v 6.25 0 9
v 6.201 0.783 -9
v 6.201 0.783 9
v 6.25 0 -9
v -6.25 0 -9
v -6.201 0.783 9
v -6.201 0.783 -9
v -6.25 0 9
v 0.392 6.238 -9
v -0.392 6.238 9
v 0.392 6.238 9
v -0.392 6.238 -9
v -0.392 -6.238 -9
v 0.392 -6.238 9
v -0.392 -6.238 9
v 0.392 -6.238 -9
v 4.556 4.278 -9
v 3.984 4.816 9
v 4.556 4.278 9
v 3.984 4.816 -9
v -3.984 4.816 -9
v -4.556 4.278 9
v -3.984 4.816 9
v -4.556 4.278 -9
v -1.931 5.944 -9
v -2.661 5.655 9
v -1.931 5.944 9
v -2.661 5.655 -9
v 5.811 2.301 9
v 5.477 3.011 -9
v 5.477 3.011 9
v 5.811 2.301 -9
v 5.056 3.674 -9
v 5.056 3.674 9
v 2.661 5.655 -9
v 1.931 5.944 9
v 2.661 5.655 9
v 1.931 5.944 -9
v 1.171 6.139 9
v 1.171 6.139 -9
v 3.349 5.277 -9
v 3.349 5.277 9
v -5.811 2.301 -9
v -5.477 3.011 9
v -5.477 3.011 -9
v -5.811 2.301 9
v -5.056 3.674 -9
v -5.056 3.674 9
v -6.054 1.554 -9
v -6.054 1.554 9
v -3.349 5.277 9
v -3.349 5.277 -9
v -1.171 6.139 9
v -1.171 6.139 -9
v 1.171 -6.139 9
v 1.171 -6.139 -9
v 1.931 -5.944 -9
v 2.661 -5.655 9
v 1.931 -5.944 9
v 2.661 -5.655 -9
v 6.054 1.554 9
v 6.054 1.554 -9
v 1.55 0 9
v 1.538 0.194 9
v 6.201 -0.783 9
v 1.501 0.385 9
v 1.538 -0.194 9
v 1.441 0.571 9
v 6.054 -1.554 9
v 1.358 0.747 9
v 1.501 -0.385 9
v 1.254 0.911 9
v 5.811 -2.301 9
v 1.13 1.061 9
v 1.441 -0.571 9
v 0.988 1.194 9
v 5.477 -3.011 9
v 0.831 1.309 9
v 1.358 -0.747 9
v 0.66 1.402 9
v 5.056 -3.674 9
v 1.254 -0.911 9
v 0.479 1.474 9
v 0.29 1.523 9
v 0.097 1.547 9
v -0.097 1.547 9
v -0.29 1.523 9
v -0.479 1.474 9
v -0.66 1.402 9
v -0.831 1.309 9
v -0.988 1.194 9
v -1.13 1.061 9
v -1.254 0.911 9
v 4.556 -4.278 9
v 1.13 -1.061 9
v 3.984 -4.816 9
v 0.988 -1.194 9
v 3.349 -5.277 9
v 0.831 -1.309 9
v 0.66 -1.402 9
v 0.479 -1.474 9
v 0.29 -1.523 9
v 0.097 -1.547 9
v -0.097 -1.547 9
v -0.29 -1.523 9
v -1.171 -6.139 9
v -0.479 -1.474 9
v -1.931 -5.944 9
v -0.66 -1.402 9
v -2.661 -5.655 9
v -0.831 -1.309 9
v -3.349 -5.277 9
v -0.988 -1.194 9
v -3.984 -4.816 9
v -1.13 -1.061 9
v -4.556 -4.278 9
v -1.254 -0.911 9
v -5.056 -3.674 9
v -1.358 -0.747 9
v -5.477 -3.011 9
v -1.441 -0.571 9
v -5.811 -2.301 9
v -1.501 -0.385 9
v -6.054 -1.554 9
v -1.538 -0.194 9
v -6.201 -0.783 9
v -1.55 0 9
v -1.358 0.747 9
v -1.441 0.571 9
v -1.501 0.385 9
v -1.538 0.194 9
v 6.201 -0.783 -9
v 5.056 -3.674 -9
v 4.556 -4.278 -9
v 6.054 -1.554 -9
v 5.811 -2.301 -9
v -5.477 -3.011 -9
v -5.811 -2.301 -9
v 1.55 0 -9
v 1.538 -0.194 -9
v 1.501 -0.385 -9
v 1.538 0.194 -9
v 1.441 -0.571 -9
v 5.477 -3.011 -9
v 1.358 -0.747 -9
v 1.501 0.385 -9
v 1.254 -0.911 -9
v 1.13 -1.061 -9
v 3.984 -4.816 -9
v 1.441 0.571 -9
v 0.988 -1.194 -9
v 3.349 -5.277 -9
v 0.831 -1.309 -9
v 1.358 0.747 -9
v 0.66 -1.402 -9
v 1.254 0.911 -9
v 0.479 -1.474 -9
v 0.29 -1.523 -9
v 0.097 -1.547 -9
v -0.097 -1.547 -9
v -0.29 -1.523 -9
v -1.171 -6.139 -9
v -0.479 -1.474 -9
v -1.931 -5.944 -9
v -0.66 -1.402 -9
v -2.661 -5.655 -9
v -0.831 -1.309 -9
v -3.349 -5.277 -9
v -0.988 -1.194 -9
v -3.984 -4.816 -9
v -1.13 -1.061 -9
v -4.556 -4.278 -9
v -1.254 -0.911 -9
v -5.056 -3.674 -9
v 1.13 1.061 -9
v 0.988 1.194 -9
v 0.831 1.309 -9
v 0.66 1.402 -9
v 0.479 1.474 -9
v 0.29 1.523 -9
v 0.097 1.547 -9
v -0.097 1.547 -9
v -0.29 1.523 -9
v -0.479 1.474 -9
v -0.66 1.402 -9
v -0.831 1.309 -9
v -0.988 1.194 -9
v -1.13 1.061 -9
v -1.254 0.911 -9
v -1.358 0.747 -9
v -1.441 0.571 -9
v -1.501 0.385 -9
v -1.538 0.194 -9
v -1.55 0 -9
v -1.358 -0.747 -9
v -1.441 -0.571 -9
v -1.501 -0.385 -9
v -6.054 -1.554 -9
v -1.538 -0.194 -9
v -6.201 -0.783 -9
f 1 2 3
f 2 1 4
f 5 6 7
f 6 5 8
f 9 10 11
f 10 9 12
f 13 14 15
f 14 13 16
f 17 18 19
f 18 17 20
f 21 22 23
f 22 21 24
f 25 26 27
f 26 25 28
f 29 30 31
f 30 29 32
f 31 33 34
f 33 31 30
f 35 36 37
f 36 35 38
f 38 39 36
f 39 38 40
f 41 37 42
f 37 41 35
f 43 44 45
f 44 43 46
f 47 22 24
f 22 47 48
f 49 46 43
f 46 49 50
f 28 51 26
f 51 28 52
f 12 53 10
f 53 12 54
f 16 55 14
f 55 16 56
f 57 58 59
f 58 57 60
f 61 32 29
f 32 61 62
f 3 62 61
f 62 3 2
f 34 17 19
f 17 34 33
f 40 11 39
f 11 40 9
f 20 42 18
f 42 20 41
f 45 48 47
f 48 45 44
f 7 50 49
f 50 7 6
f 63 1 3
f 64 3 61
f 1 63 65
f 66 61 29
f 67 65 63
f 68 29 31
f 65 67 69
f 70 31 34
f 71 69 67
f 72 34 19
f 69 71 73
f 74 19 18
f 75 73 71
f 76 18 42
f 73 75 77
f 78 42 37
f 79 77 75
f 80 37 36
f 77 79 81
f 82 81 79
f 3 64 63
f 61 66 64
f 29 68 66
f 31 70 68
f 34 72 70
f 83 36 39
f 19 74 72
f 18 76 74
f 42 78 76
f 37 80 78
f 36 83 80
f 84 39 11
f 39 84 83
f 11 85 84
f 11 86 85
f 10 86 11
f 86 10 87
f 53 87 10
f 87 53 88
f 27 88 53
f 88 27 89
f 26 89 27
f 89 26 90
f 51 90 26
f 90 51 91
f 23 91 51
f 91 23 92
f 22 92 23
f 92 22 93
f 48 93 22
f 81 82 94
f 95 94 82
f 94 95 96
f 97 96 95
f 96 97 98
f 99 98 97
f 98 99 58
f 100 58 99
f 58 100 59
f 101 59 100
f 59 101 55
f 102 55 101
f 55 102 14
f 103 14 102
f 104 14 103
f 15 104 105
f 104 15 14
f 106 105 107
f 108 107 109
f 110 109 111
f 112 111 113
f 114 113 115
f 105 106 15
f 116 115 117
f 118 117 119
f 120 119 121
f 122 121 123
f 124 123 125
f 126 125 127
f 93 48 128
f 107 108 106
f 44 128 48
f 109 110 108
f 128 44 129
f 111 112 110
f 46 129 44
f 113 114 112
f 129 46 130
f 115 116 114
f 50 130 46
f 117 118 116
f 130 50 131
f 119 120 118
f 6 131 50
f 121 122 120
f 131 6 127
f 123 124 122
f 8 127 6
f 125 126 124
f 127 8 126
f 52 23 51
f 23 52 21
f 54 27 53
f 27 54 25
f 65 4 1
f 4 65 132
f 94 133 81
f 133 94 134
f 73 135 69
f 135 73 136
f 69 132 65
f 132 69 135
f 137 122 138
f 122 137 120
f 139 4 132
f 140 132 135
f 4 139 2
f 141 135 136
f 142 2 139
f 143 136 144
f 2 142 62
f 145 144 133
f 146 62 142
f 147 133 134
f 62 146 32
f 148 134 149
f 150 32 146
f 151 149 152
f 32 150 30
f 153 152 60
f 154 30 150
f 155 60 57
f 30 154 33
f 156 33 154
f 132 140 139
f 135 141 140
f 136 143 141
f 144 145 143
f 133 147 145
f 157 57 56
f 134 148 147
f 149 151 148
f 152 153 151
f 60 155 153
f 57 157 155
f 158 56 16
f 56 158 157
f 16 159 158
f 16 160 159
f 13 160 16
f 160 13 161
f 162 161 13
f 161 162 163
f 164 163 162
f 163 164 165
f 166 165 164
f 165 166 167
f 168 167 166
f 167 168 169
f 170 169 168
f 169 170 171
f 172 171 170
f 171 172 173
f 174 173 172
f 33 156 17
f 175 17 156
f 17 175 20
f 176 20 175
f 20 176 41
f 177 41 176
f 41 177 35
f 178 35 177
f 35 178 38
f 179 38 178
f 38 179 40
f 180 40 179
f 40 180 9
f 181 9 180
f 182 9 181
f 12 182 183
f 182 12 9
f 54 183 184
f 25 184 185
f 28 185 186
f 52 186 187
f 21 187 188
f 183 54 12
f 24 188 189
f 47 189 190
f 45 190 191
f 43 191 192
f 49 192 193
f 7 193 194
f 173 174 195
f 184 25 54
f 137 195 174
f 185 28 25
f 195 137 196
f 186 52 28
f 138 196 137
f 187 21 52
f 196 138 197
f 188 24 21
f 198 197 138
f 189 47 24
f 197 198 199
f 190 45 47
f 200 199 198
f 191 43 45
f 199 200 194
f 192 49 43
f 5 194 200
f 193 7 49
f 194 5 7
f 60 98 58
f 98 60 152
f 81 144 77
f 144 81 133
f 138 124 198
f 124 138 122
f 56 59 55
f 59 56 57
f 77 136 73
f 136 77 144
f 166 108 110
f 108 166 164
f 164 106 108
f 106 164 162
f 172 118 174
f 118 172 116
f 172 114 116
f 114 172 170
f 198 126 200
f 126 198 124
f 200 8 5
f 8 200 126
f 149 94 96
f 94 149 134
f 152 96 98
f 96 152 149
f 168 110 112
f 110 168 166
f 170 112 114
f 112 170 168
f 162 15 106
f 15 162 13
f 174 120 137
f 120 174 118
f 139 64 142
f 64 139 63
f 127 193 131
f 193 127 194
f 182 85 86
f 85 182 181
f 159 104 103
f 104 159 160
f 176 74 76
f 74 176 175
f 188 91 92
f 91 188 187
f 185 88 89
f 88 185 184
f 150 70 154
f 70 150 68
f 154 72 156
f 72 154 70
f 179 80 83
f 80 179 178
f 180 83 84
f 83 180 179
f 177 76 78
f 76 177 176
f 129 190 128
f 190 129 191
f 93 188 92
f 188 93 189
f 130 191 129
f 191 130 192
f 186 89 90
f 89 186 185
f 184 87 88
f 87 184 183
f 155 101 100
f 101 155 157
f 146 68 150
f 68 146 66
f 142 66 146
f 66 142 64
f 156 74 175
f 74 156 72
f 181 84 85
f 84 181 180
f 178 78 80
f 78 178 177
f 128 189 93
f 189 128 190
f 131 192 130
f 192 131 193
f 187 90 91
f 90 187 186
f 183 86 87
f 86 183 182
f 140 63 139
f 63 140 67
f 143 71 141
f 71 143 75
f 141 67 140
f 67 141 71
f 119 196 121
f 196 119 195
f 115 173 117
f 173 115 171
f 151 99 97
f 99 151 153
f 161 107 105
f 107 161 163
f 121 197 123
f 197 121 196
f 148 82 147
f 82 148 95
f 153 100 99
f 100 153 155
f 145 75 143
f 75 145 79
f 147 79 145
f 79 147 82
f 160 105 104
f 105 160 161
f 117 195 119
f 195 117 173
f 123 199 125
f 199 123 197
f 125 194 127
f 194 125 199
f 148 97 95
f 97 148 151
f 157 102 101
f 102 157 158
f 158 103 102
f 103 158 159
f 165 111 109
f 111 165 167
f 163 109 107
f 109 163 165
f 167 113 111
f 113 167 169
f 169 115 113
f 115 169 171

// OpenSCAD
$fn = 50;


difference() {
	union() {
		translate(v = [0, 0, -9.0000000000]) {
			cylinder(h = 18, r = 6.2500000000);
		}
	}
	union() {
		translate(v = [0, 0, -100.0000000000]) {
			cylinder(h = 200, r = 1.5500000000);
		}
	}
}
